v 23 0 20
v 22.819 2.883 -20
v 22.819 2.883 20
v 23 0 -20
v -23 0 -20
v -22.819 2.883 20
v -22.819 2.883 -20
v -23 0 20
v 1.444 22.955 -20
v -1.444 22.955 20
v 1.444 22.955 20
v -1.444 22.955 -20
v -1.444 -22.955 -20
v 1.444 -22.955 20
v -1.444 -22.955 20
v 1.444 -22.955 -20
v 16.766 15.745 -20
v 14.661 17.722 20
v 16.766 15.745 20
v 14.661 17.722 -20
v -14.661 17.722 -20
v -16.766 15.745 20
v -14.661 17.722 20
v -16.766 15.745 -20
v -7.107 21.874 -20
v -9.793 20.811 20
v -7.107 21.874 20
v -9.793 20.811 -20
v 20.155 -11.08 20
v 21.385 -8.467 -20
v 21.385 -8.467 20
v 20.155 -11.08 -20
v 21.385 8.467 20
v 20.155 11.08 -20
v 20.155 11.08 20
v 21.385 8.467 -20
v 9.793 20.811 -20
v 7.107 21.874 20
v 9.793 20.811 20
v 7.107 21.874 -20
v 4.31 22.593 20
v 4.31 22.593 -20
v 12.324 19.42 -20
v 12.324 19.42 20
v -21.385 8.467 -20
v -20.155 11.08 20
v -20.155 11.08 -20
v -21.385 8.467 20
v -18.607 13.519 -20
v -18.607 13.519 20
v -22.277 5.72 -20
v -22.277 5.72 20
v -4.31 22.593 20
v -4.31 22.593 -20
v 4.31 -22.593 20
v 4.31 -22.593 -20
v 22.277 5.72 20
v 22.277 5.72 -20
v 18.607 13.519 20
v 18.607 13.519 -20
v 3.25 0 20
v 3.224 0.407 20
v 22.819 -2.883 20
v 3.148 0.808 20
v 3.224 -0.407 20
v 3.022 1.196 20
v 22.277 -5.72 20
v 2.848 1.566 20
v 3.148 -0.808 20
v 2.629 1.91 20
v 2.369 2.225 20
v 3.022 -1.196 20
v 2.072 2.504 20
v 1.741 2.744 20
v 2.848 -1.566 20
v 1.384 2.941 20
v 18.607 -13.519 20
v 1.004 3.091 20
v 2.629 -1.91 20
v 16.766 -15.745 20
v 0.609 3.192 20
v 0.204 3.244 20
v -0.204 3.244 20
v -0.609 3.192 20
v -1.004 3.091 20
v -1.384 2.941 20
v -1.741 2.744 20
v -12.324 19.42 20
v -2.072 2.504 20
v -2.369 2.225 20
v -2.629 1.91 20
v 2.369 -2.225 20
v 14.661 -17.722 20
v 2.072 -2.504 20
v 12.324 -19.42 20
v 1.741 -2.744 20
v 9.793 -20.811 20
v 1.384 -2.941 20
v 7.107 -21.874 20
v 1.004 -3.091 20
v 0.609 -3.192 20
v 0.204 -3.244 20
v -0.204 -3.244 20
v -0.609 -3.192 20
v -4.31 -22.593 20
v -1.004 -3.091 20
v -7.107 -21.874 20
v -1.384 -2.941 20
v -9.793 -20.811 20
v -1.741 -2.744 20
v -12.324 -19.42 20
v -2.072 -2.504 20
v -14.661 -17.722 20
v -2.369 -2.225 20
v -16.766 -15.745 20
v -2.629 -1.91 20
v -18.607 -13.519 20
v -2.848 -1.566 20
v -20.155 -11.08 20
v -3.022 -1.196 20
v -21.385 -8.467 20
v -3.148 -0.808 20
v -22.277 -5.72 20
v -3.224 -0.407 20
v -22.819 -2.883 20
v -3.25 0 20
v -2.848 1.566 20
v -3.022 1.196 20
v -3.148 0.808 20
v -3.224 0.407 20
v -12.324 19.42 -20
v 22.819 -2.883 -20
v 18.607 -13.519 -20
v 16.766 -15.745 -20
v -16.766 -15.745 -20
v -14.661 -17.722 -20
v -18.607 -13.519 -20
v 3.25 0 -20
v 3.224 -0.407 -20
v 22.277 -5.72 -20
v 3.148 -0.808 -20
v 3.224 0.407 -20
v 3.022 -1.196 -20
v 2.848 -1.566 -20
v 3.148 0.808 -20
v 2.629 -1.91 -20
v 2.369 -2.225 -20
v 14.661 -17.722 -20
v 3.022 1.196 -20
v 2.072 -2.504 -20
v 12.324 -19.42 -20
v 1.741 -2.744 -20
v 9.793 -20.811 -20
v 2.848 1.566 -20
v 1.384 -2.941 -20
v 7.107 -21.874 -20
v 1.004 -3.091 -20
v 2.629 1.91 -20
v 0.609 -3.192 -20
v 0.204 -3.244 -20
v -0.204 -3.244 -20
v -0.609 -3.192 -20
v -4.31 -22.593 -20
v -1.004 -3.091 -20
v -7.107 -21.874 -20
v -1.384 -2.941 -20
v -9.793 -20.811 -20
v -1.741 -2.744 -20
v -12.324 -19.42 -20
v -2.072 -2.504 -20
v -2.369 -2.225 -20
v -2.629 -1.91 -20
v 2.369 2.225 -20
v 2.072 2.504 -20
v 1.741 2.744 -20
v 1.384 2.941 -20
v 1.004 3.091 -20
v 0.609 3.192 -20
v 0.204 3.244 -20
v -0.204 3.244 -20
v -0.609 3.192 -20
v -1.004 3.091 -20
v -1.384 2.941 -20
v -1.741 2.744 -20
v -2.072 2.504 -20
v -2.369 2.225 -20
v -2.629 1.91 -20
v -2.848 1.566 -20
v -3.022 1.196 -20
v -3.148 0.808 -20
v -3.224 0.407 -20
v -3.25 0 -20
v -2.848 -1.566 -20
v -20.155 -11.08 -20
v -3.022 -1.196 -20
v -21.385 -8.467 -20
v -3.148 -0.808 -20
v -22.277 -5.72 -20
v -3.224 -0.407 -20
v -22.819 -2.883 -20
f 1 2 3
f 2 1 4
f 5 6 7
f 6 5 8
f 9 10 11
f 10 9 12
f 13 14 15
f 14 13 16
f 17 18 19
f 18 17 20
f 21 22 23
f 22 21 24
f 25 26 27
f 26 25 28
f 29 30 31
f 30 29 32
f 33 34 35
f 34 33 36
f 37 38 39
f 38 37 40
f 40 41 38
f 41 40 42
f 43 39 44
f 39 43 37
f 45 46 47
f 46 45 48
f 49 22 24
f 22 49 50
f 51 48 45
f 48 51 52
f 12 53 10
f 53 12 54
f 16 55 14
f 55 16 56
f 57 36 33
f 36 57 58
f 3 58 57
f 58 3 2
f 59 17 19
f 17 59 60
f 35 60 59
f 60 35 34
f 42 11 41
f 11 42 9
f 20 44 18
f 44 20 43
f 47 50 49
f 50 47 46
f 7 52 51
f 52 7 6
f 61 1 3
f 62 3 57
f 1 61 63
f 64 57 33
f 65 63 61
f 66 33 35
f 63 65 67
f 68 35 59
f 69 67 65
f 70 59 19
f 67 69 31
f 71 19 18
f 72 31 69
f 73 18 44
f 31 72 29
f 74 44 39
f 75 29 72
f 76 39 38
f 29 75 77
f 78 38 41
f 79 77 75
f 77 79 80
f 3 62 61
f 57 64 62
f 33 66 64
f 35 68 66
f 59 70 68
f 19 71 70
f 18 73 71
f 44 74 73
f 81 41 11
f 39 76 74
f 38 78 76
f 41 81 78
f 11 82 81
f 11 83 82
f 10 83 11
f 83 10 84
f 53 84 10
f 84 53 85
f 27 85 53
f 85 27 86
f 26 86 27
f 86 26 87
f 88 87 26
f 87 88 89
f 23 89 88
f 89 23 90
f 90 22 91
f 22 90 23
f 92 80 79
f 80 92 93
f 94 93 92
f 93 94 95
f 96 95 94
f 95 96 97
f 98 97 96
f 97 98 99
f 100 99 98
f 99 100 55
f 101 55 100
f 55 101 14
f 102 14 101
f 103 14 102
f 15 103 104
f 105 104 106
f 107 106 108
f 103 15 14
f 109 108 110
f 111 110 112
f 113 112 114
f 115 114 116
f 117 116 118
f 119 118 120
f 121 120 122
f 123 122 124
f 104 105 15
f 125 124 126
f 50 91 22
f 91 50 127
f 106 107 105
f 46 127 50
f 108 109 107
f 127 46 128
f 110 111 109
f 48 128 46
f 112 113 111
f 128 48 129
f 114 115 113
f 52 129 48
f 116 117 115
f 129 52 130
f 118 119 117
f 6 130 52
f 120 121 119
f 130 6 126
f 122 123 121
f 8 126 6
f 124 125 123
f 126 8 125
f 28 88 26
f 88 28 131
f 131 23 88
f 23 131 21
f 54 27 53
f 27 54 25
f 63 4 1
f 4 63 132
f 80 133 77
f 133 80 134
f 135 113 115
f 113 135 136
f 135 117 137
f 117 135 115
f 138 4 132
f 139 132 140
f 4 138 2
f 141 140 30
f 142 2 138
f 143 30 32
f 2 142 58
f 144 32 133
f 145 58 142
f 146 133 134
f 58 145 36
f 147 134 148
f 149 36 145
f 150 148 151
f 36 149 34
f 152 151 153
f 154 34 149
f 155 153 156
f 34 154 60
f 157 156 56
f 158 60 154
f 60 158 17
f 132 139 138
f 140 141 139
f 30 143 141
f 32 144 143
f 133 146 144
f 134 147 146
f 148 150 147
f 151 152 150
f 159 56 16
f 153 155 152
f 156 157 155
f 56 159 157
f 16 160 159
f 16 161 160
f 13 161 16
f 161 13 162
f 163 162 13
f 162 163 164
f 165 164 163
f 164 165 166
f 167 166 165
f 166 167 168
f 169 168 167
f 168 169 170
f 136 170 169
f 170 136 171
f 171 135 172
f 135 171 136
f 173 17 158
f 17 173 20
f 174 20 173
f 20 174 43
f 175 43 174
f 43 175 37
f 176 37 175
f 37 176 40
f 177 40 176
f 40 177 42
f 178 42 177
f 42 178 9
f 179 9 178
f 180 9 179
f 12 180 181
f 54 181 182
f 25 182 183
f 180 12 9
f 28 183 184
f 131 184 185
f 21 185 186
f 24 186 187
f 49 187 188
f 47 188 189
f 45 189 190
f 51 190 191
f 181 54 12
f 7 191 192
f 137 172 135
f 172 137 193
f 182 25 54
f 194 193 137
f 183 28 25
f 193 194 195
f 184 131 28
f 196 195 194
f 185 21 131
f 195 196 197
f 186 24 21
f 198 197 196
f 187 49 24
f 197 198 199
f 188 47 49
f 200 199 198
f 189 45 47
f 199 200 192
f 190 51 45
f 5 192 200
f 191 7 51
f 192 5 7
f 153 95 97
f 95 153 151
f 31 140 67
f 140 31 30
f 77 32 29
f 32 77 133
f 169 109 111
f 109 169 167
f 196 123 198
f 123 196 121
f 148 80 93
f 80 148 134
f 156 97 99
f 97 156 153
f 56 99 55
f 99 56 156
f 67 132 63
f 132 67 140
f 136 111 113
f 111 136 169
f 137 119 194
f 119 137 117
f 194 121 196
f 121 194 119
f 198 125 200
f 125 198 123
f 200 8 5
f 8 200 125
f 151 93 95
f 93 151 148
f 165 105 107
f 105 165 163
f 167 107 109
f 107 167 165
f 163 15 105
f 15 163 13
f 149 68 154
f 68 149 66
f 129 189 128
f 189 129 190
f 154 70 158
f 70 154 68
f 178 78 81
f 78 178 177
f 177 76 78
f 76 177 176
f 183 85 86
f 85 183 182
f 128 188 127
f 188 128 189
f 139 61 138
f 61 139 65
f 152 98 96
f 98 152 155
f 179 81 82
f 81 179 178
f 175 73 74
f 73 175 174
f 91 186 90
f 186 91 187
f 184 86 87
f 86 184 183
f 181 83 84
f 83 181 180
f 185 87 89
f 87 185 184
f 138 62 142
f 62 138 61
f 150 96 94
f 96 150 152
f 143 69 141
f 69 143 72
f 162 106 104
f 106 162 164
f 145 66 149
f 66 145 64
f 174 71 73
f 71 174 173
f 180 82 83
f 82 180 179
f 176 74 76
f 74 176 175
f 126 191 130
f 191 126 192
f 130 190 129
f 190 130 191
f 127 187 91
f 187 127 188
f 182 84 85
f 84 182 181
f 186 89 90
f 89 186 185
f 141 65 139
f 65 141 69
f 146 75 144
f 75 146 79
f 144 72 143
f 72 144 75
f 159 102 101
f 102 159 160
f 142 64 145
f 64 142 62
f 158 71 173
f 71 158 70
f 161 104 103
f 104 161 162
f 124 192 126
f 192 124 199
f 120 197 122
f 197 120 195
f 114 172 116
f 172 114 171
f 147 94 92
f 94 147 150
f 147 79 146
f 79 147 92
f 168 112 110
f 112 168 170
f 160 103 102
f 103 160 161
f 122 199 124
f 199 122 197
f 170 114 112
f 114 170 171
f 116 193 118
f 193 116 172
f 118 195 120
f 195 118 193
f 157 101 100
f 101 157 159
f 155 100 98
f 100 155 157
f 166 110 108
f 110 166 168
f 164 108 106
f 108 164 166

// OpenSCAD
$fn = 50;


difference() {
	union() {
		translate(v = [0, 0, -20.0000000000]) {
			cylinder(h = 40, r = 23.0000000000);
		}
	}
	union() {
		translate(v = [0, 0, -100.0000000000]) {
			cylinder(h = 200, r = 3.2500000000);
		}
	}
}
